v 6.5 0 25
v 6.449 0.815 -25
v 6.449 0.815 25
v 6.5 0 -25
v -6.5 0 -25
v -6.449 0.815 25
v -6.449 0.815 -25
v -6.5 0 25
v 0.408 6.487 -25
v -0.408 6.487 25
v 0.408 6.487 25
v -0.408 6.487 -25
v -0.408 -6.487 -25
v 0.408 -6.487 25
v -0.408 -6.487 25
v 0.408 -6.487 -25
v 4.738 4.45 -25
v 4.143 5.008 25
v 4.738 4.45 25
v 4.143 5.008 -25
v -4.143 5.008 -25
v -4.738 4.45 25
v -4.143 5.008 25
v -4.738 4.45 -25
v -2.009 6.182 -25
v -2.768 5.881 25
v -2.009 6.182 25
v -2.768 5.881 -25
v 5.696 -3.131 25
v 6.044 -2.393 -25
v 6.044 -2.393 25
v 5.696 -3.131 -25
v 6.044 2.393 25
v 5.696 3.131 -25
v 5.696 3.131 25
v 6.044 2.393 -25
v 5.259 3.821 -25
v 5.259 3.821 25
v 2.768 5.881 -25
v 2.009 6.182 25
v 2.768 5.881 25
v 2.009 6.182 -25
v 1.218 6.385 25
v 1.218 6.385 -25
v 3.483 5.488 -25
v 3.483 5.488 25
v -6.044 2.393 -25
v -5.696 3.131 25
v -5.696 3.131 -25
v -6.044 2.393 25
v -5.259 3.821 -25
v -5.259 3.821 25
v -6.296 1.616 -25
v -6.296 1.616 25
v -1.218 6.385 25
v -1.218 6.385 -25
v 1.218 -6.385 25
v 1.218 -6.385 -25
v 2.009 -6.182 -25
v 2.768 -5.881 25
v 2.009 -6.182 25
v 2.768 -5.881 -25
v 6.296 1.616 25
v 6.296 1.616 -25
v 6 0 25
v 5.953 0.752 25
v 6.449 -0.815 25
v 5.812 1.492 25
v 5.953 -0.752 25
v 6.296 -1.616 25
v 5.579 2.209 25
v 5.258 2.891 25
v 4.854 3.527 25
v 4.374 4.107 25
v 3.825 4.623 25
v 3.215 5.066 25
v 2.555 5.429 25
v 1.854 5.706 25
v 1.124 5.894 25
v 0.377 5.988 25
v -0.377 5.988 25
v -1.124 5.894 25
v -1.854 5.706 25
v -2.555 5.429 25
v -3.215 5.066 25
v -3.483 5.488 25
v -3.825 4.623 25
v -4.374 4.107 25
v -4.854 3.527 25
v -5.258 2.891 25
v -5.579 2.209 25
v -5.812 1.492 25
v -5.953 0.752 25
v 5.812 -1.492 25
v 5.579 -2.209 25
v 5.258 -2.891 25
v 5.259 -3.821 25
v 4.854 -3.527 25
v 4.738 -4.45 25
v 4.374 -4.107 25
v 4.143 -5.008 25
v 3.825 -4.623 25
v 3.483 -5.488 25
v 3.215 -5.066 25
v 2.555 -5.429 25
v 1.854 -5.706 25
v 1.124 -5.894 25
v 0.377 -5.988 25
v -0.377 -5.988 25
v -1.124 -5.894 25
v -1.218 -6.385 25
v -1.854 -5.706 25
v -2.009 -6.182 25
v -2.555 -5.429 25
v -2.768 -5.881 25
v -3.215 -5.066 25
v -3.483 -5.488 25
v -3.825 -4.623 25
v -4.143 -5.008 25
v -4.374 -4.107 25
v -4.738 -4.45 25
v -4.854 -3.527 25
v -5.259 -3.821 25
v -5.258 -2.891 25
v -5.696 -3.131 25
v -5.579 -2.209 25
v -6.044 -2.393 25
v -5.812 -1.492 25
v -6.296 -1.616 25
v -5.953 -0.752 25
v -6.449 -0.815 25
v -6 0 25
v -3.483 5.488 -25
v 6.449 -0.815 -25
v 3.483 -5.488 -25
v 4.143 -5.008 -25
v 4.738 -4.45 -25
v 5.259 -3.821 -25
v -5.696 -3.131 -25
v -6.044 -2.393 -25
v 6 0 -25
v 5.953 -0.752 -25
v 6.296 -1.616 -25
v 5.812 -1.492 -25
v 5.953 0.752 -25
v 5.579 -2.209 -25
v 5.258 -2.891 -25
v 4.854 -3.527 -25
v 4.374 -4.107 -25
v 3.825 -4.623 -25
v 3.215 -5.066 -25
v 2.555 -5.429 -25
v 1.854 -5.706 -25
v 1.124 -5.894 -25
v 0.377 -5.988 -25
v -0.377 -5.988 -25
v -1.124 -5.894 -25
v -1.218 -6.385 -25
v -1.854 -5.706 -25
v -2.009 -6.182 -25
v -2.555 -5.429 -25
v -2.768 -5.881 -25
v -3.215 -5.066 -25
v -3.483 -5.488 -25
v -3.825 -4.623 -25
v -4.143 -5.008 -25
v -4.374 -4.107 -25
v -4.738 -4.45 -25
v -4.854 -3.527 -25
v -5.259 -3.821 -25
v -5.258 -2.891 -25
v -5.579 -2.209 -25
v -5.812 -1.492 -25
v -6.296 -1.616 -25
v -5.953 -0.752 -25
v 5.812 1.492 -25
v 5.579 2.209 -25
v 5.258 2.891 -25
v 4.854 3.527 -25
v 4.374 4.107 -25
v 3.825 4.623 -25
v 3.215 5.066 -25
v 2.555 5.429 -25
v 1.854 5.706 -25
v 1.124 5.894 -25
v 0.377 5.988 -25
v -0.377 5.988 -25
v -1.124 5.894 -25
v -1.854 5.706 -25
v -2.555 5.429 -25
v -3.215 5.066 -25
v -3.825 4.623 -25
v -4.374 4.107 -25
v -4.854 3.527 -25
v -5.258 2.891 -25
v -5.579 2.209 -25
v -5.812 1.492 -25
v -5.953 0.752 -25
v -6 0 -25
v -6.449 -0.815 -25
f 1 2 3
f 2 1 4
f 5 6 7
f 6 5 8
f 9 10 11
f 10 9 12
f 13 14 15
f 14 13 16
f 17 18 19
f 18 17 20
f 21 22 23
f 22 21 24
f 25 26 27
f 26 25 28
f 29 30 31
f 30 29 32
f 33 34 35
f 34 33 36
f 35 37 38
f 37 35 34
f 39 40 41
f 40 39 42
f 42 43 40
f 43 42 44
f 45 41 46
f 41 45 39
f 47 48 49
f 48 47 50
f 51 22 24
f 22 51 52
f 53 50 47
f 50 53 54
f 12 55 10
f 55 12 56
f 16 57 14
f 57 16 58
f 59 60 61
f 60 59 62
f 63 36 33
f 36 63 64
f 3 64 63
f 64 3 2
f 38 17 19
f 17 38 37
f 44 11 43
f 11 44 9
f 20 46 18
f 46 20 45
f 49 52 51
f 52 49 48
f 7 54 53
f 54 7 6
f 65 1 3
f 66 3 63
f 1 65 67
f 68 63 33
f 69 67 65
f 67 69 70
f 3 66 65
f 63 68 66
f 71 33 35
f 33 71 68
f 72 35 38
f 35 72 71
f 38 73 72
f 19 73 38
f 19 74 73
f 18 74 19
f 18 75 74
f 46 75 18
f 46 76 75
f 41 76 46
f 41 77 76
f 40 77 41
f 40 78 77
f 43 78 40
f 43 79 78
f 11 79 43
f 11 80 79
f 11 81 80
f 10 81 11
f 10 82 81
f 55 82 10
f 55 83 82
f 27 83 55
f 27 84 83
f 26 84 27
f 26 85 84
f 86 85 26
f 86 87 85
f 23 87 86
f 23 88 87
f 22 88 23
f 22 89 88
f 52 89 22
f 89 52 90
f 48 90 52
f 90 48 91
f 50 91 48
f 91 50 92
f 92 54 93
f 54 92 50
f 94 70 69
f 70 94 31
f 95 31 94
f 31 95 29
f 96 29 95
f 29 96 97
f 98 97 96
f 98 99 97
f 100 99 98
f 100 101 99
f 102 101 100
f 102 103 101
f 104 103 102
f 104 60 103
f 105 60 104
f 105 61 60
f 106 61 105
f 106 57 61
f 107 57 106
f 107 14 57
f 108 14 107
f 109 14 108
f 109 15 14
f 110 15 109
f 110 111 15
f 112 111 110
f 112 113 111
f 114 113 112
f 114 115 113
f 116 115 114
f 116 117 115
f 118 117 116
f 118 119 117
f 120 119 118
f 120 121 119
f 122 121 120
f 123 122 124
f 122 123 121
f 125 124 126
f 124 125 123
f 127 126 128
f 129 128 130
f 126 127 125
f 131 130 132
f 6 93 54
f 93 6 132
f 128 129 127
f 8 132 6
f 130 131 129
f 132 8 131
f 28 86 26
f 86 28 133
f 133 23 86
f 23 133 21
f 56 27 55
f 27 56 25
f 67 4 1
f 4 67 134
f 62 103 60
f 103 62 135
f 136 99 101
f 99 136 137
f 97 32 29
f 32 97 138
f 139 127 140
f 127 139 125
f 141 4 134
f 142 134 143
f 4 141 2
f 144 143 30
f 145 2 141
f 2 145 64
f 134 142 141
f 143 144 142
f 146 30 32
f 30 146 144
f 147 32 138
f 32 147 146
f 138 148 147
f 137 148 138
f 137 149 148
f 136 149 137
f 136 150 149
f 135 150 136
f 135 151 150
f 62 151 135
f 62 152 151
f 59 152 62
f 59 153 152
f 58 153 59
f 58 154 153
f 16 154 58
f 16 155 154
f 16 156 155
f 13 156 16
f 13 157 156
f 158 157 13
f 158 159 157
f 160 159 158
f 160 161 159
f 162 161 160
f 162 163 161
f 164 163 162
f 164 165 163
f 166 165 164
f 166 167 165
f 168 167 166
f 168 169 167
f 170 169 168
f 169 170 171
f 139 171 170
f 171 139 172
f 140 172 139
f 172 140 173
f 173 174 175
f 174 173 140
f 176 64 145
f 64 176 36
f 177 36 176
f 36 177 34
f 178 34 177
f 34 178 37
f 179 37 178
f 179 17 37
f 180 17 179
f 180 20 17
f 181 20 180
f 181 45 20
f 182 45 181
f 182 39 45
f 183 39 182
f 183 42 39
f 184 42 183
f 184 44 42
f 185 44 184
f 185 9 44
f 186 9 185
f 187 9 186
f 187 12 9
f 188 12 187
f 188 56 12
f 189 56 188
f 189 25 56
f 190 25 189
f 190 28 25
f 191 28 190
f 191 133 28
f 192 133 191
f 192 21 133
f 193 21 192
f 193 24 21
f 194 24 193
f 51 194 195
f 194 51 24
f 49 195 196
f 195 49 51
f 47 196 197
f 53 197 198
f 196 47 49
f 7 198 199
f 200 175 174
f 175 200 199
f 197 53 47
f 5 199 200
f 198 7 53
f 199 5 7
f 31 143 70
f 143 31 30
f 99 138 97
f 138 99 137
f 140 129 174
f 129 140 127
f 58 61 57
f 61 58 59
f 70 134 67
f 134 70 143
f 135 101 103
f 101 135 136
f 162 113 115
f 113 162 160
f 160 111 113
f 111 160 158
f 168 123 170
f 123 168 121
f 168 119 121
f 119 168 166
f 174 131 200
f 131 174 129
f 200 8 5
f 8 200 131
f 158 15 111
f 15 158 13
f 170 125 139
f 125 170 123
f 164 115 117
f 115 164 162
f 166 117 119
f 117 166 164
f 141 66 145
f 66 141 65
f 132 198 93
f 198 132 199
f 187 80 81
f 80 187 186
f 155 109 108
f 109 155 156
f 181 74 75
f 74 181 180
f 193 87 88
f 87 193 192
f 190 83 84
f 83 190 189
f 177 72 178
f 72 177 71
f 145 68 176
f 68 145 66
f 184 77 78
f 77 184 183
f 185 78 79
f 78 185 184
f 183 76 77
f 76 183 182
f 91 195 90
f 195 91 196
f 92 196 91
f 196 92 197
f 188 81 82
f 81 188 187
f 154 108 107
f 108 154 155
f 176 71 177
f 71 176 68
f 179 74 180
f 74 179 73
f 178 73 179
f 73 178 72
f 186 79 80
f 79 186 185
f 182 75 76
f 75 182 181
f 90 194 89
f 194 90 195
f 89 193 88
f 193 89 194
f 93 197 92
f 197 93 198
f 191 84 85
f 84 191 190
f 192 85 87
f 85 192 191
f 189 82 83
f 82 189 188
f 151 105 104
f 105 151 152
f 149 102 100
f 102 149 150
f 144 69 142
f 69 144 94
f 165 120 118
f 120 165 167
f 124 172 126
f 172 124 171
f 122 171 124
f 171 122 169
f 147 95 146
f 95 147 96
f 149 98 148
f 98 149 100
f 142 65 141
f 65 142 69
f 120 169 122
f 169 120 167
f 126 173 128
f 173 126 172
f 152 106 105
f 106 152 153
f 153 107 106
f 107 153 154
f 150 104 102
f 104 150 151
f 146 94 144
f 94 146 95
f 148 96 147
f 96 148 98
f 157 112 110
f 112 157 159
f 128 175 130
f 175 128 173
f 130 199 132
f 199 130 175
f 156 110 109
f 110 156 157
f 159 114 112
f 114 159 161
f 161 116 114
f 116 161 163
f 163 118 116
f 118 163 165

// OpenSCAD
$fn = 50;


difference() {
	union() {
		translate(v = [0, 0, -25.0000000000]) {
			cylinder(h = 50, r = 6.5000000000);
		}
	}
	union() {
		translate(v = [0, 0, -100.0000000000]) {
			cylinder(h = 200, r = 6);
		}
	}
}
